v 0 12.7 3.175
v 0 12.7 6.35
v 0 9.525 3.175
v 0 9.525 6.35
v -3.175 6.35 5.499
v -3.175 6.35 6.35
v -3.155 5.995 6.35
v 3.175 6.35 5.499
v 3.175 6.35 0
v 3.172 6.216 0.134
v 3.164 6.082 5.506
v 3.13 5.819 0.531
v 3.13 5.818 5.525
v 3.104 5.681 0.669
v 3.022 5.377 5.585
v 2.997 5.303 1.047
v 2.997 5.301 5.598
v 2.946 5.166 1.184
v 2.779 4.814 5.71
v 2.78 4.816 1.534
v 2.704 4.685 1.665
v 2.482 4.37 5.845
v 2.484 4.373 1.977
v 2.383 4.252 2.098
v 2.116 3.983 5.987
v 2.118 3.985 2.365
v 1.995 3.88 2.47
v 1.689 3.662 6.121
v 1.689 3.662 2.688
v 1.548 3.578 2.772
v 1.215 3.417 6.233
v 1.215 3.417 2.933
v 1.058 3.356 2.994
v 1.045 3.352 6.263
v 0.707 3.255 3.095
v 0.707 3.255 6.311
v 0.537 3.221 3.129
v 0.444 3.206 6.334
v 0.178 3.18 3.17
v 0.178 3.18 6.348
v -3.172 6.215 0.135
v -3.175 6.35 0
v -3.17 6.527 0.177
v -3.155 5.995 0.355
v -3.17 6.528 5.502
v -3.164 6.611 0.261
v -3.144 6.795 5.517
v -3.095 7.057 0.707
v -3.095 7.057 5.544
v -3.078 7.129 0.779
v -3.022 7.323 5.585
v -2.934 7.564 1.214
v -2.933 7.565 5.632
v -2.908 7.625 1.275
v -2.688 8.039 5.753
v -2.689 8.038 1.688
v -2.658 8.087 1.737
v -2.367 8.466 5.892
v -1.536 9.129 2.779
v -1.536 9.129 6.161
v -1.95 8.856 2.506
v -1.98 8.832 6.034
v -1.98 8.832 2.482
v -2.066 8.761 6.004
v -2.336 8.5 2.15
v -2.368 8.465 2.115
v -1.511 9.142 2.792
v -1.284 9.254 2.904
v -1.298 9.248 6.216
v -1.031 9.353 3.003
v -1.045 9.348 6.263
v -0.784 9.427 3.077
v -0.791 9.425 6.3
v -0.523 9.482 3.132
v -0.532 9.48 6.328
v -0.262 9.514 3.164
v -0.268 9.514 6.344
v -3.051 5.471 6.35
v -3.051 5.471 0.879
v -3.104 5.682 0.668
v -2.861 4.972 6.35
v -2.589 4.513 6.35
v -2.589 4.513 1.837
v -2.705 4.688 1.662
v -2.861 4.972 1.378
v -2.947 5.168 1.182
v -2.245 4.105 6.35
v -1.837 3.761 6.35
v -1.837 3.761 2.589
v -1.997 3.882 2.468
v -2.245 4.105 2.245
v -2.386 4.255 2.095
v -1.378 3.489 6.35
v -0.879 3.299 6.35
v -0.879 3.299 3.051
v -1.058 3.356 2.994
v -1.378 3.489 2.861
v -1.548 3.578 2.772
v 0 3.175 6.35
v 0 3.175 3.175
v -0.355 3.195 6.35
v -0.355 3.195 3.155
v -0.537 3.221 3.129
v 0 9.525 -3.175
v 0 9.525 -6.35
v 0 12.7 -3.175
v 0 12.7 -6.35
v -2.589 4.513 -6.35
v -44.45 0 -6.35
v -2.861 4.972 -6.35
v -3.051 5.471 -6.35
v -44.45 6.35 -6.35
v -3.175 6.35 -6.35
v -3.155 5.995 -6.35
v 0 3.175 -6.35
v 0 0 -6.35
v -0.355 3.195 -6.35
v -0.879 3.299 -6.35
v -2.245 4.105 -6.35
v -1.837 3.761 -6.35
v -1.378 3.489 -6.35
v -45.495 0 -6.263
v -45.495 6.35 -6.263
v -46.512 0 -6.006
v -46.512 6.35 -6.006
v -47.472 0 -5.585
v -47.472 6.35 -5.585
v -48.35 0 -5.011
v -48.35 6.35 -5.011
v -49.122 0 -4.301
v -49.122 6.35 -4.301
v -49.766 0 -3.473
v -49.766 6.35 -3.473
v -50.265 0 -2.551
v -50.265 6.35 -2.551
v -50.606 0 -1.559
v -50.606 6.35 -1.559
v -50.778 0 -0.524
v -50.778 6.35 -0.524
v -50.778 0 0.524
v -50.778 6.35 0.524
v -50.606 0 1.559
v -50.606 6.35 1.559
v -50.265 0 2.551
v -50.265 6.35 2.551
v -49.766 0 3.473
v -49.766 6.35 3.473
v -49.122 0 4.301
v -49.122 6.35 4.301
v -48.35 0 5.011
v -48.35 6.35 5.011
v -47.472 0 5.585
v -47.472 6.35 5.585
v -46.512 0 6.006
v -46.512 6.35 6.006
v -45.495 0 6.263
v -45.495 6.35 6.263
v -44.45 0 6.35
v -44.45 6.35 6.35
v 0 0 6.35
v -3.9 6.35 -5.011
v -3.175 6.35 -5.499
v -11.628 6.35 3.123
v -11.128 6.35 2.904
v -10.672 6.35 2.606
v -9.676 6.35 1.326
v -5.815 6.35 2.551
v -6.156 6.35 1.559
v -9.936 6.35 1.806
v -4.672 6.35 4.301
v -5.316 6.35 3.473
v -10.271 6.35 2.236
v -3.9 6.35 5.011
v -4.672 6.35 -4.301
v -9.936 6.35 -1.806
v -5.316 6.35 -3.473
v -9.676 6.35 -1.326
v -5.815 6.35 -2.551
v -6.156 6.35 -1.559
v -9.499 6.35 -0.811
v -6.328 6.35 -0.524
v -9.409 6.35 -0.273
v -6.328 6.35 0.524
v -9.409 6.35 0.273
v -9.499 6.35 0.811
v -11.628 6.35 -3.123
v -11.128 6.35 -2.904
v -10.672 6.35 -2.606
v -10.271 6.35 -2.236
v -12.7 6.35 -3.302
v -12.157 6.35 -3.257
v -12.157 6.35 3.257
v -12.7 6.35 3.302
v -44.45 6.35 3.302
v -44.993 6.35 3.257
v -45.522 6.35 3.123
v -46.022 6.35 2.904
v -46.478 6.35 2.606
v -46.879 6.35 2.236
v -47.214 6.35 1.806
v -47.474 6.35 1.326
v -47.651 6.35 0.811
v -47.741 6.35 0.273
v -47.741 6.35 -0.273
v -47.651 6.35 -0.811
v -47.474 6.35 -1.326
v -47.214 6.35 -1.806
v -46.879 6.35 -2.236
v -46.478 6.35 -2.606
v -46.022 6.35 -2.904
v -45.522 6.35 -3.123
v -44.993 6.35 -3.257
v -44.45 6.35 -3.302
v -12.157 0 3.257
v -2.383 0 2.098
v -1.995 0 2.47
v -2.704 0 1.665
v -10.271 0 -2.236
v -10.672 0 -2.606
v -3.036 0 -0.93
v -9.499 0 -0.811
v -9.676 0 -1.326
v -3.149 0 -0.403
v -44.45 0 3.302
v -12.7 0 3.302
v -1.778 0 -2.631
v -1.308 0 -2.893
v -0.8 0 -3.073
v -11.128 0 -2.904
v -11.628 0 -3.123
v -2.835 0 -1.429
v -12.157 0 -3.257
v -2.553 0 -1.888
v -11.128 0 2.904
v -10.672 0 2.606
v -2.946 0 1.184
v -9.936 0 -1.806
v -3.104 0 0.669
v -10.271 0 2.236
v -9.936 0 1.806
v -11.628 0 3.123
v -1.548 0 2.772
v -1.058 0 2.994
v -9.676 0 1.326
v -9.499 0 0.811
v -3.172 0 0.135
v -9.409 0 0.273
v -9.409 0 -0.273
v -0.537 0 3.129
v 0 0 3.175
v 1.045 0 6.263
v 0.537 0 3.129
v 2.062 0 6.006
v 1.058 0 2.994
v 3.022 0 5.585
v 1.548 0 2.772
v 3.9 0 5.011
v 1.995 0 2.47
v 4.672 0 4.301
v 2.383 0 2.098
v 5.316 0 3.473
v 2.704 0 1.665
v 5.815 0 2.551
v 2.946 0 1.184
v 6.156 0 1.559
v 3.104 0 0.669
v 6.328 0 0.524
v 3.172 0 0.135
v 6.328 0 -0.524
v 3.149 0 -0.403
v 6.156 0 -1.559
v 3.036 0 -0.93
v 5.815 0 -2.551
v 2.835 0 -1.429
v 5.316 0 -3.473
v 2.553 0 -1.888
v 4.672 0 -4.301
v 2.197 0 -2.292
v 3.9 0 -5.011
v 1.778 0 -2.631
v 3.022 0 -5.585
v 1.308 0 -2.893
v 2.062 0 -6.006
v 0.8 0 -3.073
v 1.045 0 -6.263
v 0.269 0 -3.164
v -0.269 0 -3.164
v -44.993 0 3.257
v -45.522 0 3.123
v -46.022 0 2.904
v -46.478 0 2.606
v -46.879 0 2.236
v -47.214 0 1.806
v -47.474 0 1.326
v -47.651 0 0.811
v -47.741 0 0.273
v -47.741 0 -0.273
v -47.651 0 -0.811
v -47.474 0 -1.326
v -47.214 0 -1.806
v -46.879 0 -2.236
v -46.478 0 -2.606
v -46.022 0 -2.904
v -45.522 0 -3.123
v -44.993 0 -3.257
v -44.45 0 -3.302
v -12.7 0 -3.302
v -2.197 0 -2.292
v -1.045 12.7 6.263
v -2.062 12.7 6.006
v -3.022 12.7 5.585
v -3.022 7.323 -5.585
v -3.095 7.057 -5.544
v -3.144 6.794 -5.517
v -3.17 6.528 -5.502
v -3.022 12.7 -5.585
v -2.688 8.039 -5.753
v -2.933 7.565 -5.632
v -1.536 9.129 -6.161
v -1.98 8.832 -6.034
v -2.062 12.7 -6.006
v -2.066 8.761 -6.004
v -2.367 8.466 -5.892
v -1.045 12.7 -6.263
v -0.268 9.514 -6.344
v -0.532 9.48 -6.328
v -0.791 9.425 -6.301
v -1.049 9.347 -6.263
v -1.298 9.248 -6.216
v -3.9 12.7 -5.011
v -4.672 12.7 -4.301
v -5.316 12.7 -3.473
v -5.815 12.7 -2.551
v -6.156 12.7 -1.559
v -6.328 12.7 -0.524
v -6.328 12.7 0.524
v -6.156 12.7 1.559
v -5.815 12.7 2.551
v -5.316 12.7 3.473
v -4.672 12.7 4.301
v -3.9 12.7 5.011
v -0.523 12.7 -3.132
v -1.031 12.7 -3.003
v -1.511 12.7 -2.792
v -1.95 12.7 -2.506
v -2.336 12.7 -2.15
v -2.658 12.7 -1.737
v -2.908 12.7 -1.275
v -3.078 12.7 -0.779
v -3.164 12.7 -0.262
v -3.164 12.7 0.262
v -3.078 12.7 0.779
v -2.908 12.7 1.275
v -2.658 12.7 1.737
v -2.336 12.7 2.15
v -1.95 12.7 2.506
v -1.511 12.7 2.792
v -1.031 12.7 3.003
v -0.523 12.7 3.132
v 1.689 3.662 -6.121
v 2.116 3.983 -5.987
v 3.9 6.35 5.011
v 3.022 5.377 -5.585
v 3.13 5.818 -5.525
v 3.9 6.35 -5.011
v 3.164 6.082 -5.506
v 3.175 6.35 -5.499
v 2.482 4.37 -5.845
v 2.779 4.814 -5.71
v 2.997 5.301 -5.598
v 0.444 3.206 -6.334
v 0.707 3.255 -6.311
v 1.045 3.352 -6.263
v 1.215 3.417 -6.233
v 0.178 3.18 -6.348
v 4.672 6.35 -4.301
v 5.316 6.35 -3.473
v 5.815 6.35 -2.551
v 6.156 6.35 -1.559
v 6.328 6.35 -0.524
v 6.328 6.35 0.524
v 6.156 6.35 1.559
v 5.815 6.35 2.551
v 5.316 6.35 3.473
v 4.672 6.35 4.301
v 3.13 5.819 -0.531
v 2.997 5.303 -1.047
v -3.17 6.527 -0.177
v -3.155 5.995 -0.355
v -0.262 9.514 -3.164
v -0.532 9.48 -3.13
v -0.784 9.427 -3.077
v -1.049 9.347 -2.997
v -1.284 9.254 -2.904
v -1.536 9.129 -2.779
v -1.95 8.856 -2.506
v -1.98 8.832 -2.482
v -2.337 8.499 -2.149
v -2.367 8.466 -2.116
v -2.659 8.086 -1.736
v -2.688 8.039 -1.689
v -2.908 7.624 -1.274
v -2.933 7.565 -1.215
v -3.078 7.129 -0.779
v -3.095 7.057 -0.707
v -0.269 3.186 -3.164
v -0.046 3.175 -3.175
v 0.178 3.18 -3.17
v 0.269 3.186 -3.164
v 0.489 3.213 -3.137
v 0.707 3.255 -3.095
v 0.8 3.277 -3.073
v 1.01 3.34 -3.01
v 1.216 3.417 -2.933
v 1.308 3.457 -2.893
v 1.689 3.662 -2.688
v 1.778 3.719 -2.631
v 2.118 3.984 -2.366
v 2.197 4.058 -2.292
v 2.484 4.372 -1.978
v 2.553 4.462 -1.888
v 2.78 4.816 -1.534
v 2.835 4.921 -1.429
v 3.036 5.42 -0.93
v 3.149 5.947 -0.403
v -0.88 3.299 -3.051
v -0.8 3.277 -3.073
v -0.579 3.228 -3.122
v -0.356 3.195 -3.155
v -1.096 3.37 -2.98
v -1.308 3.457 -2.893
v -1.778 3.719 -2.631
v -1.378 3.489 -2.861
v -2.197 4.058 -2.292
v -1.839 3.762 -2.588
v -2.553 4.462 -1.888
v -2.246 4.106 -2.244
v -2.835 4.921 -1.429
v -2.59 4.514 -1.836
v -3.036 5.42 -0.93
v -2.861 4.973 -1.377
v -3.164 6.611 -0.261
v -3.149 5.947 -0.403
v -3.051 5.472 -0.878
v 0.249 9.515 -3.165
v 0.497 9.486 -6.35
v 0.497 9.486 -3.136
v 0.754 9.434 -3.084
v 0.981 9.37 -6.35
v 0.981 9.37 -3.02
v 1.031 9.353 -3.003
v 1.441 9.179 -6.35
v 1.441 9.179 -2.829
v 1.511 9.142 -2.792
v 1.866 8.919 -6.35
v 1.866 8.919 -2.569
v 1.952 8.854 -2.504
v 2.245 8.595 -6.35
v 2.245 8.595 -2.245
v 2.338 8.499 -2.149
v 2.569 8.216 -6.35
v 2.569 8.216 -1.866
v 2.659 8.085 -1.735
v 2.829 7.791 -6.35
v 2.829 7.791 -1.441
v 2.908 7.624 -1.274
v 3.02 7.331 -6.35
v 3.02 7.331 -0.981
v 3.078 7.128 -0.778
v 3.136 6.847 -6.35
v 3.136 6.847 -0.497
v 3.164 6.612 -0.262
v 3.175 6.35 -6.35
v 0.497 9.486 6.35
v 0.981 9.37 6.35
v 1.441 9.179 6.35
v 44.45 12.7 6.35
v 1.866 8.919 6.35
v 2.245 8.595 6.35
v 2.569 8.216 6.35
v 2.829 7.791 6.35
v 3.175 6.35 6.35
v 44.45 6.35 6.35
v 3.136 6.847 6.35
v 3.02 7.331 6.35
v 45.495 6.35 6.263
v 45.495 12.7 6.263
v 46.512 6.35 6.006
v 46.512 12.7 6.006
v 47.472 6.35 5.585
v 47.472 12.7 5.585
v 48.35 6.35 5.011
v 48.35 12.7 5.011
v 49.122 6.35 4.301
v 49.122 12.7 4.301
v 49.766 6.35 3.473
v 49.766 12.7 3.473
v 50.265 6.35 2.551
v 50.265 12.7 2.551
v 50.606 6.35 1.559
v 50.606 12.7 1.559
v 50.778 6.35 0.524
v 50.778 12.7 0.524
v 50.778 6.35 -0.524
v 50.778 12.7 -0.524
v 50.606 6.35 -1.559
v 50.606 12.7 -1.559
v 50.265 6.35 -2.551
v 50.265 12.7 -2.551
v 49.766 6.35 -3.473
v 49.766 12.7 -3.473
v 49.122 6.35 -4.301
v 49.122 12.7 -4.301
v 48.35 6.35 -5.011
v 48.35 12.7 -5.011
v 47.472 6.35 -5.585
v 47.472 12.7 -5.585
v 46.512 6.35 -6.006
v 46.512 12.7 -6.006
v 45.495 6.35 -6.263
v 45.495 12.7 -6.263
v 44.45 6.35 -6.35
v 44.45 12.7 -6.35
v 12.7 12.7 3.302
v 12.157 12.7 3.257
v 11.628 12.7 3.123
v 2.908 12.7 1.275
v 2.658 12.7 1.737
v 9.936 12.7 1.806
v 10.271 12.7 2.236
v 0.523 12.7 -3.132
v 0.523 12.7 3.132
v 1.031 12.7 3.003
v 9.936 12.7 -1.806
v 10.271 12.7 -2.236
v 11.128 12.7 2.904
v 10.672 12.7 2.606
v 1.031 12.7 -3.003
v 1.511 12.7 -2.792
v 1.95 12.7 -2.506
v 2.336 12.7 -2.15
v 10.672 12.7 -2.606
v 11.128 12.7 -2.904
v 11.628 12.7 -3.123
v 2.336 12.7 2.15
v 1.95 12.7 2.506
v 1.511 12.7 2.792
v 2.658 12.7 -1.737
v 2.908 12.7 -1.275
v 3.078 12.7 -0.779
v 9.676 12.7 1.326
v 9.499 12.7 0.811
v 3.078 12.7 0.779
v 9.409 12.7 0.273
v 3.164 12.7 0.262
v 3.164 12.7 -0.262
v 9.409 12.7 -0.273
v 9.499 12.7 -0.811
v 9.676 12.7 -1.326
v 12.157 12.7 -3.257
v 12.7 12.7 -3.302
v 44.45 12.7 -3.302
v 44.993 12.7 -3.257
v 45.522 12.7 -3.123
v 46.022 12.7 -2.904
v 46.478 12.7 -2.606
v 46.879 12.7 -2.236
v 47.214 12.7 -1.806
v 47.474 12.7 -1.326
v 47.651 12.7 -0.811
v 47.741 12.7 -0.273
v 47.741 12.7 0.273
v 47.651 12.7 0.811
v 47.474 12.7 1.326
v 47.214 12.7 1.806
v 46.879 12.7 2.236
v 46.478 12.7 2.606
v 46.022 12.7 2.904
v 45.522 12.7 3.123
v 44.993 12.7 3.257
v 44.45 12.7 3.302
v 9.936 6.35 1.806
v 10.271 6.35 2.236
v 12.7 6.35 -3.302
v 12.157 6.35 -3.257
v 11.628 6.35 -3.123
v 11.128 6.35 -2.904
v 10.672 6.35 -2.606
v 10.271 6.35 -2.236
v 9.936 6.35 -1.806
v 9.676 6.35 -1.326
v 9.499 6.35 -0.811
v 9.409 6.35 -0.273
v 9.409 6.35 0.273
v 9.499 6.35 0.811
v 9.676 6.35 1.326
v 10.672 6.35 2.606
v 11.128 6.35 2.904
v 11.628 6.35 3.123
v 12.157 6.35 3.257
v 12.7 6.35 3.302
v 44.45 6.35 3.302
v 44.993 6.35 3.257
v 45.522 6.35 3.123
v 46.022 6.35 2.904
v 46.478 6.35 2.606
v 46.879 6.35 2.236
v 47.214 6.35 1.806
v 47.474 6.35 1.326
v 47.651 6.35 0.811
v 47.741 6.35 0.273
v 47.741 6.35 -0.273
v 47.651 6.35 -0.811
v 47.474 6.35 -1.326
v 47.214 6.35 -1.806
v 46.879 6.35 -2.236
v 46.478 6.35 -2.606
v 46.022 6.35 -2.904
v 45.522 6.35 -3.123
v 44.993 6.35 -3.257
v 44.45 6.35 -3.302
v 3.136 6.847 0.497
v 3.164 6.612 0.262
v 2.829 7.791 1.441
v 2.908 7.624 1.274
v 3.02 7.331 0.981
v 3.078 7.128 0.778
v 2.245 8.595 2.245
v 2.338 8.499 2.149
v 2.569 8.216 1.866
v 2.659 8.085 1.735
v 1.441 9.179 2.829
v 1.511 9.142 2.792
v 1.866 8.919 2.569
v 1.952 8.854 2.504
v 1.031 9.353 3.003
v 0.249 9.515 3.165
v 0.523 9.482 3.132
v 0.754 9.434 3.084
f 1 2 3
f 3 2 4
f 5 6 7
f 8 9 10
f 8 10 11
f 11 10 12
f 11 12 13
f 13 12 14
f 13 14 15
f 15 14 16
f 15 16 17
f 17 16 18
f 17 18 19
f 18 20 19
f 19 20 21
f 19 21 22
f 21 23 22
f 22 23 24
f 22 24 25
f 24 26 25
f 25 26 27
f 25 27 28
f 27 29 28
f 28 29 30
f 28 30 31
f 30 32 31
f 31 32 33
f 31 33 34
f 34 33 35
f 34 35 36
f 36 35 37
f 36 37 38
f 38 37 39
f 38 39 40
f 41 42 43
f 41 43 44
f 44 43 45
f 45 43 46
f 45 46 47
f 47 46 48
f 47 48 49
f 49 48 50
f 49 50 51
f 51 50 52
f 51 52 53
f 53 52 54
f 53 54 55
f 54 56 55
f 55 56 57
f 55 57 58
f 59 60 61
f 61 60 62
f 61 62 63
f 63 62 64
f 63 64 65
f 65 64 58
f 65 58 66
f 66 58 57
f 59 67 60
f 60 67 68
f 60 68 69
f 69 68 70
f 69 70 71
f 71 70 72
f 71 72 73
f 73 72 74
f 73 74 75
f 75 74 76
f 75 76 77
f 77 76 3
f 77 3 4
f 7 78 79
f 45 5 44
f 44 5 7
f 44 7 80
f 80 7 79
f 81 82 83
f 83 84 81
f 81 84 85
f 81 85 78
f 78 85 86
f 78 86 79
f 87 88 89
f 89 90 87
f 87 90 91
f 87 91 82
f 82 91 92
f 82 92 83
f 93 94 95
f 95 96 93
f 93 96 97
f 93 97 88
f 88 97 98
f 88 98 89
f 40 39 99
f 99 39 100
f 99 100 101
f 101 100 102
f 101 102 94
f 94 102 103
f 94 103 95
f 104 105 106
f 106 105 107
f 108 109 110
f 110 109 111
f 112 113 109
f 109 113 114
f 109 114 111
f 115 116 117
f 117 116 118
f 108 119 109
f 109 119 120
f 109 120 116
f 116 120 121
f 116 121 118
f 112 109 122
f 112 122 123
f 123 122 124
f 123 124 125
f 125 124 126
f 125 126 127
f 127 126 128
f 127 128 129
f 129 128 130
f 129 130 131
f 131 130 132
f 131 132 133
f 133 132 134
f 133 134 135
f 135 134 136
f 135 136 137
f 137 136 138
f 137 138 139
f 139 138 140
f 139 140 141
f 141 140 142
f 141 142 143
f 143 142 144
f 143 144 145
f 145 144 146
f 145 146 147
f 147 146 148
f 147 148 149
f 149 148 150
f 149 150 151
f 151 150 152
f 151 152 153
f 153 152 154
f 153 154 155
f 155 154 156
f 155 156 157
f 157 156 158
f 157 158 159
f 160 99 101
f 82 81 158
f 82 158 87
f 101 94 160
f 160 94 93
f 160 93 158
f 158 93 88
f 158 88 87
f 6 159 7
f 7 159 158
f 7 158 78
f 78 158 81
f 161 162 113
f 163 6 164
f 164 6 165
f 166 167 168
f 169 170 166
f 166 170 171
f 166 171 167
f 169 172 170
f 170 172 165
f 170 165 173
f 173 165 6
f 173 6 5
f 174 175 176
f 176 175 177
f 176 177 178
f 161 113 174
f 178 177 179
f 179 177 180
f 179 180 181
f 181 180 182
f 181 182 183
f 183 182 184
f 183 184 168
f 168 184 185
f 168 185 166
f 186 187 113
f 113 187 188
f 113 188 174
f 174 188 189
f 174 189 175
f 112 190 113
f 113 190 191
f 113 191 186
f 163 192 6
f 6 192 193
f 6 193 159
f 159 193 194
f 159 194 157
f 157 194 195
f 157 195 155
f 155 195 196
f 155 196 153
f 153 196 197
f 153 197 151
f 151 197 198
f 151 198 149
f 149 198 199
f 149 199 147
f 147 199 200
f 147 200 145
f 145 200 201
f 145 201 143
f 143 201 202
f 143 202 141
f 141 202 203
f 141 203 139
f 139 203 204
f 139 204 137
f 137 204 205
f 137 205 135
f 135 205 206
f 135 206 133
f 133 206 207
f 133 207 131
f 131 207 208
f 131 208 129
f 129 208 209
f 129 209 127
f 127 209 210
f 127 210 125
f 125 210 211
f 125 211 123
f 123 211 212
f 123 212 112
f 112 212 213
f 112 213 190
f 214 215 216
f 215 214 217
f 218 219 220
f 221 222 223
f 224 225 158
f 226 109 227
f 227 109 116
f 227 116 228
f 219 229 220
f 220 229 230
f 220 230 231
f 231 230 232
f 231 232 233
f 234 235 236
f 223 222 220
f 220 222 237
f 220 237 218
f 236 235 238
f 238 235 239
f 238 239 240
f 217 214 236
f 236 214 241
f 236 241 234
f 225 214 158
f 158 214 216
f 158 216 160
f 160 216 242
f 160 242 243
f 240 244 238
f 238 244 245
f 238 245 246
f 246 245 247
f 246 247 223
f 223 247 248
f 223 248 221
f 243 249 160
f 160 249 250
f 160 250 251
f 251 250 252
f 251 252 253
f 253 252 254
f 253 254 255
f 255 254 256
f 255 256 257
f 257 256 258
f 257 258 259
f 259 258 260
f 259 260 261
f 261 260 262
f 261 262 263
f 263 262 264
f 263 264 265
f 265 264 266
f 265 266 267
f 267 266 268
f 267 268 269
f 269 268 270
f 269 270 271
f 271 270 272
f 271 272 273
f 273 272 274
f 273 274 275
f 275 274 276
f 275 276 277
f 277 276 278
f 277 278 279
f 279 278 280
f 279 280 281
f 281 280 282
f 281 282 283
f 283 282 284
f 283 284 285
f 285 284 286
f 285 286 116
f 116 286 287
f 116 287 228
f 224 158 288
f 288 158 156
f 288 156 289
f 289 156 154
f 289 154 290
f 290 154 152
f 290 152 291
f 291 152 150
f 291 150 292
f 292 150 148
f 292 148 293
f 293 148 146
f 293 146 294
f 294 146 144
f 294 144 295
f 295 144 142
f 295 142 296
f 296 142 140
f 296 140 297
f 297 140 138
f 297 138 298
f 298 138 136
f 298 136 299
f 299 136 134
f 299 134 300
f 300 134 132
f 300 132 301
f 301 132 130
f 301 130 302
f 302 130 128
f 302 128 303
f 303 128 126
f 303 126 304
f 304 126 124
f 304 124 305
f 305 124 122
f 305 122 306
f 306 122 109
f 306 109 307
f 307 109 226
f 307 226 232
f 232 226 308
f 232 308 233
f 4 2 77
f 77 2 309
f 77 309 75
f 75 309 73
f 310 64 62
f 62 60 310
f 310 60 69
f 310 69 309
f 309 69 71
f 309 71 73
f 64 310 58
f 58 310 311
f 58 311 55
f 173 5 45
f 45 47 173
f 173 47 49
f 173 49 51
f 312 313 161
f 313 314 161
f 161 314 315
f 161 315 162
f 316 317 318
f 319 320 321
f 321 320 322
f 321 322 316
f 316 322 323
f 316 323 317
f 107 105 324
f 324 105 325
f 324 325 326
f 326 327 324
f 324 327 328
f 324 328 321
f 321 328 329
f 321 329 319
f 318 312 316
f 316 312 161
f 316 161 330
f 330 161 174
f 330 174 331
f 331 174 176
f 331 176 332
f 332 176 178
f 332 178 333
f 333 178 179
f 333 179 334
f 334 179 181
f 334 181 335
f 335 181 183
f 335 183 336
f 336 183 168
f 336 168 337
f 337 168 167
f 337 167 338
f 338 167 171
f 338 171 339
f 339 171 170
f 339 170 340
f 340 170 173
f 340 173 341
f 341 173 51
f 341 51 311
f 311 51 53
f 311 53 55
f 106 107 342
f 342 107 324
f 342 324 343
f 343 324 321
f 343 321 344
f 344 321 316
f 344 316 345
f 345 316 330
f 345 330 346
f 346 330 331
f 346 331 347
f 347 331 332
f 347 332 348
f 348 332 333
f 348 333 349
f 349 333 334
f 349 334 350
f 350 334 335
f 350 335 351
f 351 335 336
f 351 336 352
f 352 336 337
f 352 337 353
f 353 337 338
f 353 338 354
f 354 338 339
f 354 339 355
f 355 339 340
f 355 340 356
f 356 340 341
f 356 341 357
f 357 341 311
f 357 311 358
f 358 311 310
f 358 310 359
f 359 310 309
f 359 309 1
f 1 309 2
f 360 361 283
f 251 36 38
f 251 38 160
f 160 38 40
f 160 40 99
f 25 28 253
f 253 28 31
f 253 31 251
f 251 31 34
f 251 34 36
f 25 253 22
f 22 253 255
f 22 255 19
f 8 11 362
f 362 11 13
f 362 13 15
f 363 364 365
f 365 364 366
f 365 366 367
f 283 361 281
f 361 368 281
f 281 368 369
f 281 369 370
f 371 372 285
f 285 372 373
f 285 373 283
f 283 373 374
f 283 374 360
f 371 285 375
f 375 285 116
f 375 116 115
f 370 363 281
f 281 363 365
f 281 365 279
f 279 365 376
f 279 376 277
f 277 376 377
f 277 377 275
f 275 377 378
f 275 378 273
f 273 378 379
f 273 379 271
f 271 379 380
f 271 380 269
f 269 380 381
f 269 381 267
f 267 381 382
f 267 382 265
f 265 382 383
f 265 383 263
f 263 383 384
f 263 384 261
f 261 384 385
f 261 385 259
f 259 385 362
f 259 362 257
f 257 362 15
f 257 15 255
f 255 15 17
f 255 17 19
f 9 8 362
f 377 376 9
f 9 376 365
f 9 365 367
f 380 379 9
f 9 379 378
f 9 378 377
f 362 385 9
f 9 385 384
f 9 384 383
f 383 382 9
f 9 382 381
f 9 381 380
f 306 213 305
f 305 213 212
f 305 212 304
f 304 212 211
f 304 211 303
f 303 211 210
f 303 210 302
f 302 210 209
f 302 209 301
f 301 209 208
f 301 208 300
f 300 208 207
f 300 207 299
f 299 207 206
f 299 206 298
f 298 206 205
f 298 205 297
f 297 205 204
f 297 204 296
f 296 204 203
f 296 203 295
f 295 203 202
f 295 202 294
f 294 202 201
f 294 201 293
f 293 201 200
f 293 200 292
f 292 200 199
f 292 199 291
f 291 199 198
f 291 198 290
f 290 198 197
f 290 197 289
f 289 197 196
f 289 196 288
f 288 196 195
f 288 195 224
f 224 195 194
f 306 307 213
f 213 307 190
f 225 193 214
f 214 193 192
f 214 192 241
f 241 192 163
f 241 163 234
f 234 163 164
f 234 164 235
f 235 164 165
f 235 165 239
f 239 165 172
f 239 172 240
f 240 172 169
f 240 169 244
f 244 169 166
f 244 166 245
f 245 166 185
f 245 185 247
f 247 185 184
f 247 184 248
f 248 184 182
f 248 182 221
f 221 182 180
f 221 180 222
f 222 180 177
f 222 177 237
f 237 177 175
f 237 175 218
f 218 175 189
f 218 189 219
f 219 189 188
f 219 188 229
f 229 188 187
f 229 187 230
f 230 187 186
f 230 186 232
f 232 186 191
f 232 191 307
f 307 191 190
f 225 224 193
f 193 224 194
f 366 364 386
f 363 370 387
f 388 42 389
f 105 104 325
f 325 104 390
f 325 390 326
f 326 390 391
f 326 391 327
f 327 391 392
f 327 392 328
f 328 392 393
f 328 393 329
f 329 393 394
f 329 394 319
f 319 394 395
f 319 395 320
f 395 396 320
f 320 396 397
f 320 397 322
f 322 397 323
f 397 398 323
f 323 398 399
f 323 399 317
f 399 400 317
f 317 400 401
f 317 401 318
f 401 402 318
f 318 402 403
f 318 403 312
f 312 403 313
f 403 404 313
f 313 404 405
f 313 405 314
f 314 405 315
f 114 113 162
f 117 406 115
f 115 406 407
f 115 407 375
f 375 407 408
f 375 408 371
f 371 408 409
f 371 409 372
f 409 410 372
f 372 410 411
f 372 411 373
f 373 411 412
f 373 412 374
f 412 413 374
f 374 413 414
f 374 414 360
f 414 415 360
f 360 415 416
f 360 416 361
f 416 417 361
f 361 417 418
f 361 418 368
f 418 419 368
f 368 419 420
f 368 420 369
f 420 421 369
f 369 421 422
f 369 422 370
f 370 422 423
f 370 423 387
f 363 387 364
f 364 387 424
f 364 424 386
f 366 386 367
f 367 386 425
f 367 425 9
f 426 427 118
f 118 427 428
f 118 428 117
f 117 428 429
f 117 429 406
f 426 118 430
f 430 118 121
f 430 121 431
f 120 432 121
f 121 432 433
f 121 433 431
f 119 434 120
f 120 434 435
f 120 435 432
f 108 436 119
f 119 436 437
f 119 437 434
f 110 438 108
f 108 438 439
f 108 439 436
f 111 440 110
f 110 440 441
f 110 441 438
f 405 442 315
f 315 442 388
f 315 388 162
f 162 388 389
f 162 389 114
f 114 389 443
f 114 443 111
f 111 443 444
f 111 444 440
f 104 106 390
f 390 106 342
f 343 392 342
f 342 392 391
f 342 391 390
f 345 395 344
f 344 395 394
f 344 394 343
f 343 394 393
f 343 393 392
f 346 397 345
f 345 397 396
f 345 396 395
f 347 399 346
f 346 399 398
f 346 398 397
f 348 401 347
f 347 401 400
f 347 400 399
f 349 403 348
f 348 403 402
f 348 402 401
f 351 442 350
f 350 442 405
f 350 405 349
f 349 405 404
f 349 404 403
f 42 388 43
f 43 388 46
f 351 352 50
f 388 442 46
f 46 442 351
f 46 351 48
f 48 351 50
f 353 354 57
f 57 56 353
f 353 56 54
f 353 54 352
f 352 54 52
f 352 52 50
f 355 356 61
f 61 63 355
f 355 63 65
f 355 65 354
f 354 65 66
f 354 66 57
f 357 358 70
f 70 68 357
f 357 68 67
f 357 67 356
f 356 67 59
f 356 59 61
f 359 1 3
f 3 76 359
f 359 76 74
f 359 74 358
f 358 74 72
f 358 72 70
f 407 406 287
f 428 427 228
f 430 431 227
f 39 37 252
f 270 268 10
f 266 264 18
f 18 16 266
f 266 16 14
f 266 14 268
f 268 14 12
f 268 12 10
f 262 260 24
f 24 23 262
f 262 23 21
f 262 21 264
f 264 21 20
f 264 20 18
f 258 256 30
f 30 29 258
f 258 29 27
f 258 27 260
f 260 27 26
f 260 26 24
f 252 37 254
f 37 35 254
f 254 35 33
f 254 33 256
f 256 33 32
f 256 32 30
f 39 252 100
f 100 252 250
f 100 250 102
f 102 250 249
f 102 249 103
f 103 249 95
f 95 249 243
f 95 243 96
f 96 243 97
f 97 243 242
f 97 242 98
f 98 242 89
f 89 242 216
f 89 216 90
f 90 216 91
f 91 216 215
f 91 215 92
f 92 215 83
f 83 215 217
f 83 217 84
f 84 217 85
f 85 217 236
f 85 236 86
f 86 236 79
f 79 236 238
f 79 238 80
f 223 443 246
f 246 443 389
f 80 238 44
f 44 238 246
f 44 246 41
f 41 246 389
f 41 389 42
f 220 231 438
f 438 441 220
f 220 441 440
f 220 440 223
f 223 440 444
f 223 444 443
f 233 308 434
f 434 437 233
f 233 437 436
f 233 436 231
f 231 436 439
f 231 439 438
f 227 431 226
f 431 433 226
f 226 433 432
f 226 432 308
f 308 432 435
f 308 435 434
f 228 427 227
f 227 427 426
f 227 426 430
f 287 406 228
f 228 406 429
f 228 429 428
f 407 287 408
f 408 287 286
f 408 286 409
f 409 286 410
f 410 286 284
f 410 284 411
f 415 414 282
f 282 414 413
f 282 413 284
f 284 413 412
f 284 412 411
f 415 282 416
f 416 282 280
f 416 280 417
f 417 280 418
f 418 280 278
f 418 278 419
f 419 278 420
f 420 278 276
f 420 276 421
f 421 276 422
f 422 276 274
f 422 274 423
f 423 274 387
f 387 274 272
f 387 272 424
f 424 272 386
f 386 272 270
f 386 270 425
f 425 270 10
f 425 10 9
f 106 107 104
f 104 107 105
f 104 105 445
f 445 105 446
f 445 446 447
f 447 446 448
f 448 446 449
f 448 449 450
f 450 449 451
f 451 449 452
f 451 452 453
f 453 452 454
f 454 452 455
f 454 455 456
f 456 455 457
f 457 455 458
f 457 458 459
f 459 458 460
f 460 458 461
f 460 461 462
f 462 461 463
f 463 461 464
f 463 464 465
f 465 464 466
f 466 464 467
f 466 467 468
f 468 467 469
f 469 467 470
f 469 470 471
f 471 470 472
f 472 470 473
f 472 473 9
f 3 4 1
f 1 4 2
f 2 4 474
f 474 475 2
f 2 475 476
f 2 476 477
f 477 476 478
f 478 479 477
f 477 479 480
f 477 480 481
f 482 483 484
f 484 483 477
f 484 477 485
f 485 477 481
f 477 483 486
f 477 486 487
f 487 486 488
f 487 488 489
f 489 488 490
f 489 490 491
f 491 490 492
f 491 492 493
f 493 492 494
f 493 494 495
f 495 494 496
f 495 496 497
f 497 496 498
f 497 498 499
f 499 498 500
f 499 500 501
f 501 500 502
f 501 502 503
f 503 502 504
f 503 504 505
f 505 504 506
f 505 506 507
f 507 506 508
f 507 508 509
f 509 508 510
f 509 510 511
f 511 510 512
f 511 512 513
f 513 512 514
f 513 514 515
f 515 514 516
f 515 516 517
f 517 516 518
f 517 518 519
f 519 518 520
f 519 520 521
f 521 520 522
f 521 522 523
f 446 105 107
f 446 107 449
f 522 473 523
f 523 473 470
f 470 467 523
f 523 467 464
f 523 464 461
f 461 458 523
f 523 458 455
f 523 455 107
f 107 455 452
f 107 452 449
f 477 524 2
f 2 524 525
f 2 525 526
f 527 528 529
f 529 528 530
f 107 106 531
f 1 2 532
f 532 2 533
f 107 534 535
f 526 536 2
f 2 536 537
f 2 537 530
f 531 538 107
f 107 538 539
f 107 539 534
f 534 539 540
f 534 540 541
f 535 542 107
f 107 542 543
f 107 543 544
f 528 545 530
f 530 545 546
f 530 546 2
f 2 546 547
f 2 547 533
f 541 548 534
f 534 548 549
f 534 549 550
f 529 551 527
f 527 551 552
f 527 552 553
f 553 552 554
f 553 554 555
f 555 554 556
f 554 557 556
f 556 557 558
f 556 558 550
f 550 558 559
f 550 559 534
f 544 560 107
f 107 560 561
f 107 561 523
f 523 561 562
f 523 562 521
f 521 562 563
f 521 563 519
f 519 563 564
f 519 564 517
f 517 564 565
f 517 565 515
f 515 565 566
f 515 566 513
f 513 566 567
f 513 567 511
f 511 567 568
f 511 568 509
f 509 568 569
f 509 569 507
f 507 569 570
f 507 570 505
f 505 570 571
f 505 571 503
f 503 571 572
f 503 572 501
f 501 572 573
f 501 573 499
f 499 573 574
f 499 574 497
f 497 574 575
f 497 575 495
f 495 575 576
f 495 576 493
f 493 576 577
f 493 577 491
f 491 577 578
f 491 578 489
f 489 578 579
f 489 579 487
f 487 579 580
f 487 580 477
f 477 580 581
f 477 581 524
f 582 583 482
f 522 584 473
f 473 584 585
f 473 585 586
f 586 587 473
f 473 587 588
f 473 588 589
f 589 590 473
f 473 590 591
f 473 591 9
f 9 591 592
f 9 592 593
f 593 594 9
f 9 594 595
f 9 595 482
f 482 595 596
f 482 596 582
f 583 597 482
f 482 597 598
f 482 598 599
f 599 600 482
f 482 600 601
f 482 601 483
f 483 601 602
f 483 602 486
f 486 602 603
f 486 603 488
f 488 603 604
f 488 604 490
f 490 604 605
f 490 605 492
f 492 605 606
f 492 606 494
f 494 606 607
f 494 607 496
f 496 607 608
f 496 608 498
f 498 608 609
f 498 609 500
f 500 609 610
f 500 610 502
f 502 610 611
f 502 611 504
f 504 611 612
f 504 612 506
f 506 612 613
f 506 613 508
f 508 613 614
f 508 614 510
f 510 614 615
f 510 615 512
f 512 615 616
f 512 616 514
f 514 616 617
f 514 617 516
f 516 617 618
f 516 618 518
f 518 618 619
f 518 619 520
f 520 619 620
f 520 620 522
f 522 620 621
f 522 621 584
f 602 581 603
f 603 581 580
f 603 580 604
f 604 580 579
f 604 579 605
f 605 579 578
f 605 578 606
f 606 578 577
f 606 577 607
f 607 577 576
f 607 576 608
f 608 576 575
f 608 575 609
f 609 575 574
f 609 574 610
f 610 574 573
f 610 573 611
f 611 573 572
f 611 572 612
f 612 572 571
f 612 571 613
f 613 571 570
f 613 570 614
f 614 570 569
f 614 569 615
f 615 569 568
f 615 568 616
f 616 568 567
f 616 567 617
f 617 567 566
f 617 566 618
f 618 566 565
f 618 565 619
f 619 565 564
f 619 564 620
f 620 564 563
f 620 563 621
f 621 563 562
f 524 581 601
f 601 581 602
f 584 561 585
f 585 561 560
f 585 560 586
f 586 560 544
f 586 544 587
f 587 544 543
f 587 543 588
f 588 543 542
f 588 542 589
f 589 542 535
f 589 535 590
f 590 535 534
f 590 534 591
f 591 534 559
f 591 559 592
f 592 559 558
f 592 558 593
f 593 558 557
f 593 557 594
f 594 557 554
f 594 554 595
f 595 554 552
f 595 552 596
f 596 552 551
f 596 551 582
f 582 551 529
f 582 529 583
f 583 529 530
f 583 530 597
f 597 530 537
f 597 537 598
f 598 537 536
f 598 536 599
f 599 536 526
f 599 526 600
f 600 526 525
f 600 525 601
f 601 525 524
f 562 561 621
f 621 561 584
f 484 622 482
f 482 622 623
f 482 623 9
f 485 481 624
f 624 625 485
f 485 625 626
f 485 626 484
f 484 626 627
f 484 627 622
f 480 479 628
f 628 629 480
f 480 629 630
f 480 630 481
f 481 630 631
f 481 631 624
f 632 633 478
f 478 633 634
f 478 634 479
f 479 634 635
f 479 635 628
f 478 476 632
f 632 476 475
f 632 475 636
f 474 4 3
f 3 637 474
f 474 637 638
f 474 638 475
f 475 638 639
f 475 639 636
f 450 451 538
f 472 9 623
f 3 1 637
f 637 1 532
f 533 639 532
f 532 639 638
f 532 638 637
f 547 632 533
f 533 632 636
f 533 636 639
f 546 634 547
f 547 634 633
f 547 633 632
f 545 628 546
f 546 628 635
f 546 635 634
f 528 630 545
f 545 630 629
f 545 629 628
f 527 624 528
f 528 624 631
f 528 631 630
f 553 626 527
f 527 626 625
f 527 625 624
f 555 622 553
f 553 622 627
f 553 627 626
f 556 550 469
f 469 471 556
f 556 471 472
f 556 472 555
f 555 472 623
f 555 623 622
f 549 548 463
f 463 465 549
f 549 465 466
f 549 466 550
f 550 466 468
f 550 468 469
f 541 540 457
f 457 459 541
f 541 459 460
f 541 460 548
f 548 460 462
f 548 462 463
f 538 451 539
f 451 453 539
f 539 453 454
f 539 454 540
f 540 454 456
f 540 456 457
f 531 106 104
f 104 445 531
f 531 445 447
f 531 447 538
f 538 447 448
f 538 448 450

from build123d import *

# Parameters (mm, degrees)
BOSS_EXTRUDE1_DEPTH = 6.35
BOSS_EXTRUDE2_DEPTH = 6.35
BOSS_EXTRUDE3_DEPTH = 6.35
BOSS_EXTRUDE4_DEPTH = 6.35
CUT_EXTRUDE3_DEPTH  = 53.74706153
SKETCH9_R           = 3.175
CUT_EXTRUDE5_DEPTH  = 54.881536726
SKETCH10_R          = 3.175
CUT_EXTRUDE6_DEPTH  = 53.747061566


with BuildPart() as part:
    # Sketch1 → Boss-Extrude1 (new body)
    with BuildSketch(Plane(origin=(0, 0, 0), x_dir=(1, 0, 0), z_dir=(0, 1, 0))):
        with BuildLine():
            Line((0, 6.35), (-44.45, 6.35))
            ThreePointArc((-44.45, 6.35), (-50.8, 0), (-44.45, -6.35))
            Line((-44.45, -6.35), (0, -6.35))
            Line((0, -6.35), (0, 6.35))
        make_face()
    extrude(amount=BOSS_EXTRUDE1_DEPTH)

    # Sketch5 → Boss-Extrude3 (add)
    with BuildSketch(Plane(origin=(0, 6.35, 0), x_dir=(1, 0, 0), z_dir=(0, 1, 0))):
        with BuildLine():
            Line((0, 6.35), (0, -6.35))
            ThreePointArc((0, -6.35), (-6.35, 0), (0, 6.35))
        make_face()
    extrude(amount=BOSS_EXTRUDE3_DEPTH)

    # Sketch6 → Boss-Extrude4 (add)
    with BuildSketch(Plane.XZ):
        with BuildLine():
            Line((0, 6.35), (0, -6.35))
            ThreePointArc((0, -6.35), (6.35, 0), (0, 6.35))
        make_face()
    extrude(amount=-BOSS_EXTRUDE4_DEPTH)


with BuildPart() as body_2:
    # Sketch2 → Boss-Extrude2 (new body)
    with BuildSketch(Plane(origin=(0, 6.35, 0), x_dir=(1, 0, 0), z_dir=(0, 1, 0))):
        with BuildLine():
            Line((0, 6.35), (44.45, 6.35))
            ThreePointArc((44.45, 6.35), (50.8, 0), (44.45, -6.35))
            Line((44.45, -6.35), (0, -6.35))
            Line((0, -6.35), (0, 6.35))
        make_face()
    extrude(amount=BOSS_EXTRUDE2_DEPTH)


with BuildPart() as cut_extrude3_tool:
    # Sketch4 → Cut-Extrude3 (new, through all)
    with BuildSketch(Plane(origin=(0, 12.7, 0), x_dir=(1, 0, 0), z_dir=(0, 1, 0))):
        with BuildLine():
            Line((-44.45, 3.302), (-12.7, 3.302))
            ThreePointArc((-12.7, 3.302), (-9.398, 0), (-12.7, -3.302))
            Line((-12.7, -3.302), (-44.45, -3.302))
            ThreePointArc((-44.45, -3.302), (-47.752, 0), (-44.45, 3.302))
        make_face()
        with BuildLine():
            Line((44.45, -3.302), (12.7, -3.302))
            ThreePointArc((12.7, -3.302), (9.398, 0), (12.7, 3.302))
            Line((12.7, 3.302), (44.45, 3.302))
            ThreePointArc((44.45, 3.302), (47.752, 0), (44.45, -3.302))
        make_face()
    extrude(amount=-CUT_EXTRUDE3_DEPTH)


with BuildPart() as part_1:
    add(part.part)

    # Cut-Extrude3: cut by cut_extrude3_tool
    add(cut_extrude3_tool.part, mode=Mode.SUBTRACT)


with BuildPart() as body_2_1:
    add(body_2.part)

    # Cut-Extrude3: cut by cut_extrude3_tool
    add(cut_extrude3_tool.part, mode=Mode.SUBTRACT)


with BuildPart() as cut_extrude5_tool:
    # Sketch9 → Cut-Extrude5 (new, through all)
    with BuildSketch(Plane.XY.offset(6.35)):
        with Locations((0, 6.35)):
            Circle(SKETCH9_R)
    extrude(amount=-CUT_EXTRUDE5_DEPTH)


with BuildPart() as part_2:
    add(part_1.part)

    # Cut-Extrude5: cut by cut_extrude5_tool
    add(cut_extrude5_tool.part, mode=Mode.SUBTRACT)


with BuildPart() as body_2_2:
    add(body_2_1.part)

    # Cut-Extrude5: cut by cut_extrude5_tool
    add(cut_extrude5_tool.part, mode=Mode.SUBTRACT)


with BuildPart() as cut_extrude6_tool:
    # Sketch10 → Cut-Extrude6 (new, through all)
    with BuildSketch(Plane(origin=(0, 12.7, 0), x_dir=(1, 0, 0), z_dir=(0, 1, 0))):
        with Locations(Location((0, 0, 0), (0, 0, 270))):
            Circle(SKETCH10_R)
    extrude(amount=-CUT_EXTRUDE6_DEPTH)


with BuildPart() as part_3:
    add(part_2.part)

    # Cut-Extrude6: cut by cut_extrude6_tool
    add(cut_extrude6_tool.part, mode=Mode.SUBTRACT)


with BuildPart() as body_2_3:
    add(body_2_2.part)

    # Cut-Extrude6: cut by cut_extrude6_tool
    add(cut_extrude6_tool.part, mode=Mode.SUBTRACT)


solid = Compound([part_3.part, body_2_3.part])
